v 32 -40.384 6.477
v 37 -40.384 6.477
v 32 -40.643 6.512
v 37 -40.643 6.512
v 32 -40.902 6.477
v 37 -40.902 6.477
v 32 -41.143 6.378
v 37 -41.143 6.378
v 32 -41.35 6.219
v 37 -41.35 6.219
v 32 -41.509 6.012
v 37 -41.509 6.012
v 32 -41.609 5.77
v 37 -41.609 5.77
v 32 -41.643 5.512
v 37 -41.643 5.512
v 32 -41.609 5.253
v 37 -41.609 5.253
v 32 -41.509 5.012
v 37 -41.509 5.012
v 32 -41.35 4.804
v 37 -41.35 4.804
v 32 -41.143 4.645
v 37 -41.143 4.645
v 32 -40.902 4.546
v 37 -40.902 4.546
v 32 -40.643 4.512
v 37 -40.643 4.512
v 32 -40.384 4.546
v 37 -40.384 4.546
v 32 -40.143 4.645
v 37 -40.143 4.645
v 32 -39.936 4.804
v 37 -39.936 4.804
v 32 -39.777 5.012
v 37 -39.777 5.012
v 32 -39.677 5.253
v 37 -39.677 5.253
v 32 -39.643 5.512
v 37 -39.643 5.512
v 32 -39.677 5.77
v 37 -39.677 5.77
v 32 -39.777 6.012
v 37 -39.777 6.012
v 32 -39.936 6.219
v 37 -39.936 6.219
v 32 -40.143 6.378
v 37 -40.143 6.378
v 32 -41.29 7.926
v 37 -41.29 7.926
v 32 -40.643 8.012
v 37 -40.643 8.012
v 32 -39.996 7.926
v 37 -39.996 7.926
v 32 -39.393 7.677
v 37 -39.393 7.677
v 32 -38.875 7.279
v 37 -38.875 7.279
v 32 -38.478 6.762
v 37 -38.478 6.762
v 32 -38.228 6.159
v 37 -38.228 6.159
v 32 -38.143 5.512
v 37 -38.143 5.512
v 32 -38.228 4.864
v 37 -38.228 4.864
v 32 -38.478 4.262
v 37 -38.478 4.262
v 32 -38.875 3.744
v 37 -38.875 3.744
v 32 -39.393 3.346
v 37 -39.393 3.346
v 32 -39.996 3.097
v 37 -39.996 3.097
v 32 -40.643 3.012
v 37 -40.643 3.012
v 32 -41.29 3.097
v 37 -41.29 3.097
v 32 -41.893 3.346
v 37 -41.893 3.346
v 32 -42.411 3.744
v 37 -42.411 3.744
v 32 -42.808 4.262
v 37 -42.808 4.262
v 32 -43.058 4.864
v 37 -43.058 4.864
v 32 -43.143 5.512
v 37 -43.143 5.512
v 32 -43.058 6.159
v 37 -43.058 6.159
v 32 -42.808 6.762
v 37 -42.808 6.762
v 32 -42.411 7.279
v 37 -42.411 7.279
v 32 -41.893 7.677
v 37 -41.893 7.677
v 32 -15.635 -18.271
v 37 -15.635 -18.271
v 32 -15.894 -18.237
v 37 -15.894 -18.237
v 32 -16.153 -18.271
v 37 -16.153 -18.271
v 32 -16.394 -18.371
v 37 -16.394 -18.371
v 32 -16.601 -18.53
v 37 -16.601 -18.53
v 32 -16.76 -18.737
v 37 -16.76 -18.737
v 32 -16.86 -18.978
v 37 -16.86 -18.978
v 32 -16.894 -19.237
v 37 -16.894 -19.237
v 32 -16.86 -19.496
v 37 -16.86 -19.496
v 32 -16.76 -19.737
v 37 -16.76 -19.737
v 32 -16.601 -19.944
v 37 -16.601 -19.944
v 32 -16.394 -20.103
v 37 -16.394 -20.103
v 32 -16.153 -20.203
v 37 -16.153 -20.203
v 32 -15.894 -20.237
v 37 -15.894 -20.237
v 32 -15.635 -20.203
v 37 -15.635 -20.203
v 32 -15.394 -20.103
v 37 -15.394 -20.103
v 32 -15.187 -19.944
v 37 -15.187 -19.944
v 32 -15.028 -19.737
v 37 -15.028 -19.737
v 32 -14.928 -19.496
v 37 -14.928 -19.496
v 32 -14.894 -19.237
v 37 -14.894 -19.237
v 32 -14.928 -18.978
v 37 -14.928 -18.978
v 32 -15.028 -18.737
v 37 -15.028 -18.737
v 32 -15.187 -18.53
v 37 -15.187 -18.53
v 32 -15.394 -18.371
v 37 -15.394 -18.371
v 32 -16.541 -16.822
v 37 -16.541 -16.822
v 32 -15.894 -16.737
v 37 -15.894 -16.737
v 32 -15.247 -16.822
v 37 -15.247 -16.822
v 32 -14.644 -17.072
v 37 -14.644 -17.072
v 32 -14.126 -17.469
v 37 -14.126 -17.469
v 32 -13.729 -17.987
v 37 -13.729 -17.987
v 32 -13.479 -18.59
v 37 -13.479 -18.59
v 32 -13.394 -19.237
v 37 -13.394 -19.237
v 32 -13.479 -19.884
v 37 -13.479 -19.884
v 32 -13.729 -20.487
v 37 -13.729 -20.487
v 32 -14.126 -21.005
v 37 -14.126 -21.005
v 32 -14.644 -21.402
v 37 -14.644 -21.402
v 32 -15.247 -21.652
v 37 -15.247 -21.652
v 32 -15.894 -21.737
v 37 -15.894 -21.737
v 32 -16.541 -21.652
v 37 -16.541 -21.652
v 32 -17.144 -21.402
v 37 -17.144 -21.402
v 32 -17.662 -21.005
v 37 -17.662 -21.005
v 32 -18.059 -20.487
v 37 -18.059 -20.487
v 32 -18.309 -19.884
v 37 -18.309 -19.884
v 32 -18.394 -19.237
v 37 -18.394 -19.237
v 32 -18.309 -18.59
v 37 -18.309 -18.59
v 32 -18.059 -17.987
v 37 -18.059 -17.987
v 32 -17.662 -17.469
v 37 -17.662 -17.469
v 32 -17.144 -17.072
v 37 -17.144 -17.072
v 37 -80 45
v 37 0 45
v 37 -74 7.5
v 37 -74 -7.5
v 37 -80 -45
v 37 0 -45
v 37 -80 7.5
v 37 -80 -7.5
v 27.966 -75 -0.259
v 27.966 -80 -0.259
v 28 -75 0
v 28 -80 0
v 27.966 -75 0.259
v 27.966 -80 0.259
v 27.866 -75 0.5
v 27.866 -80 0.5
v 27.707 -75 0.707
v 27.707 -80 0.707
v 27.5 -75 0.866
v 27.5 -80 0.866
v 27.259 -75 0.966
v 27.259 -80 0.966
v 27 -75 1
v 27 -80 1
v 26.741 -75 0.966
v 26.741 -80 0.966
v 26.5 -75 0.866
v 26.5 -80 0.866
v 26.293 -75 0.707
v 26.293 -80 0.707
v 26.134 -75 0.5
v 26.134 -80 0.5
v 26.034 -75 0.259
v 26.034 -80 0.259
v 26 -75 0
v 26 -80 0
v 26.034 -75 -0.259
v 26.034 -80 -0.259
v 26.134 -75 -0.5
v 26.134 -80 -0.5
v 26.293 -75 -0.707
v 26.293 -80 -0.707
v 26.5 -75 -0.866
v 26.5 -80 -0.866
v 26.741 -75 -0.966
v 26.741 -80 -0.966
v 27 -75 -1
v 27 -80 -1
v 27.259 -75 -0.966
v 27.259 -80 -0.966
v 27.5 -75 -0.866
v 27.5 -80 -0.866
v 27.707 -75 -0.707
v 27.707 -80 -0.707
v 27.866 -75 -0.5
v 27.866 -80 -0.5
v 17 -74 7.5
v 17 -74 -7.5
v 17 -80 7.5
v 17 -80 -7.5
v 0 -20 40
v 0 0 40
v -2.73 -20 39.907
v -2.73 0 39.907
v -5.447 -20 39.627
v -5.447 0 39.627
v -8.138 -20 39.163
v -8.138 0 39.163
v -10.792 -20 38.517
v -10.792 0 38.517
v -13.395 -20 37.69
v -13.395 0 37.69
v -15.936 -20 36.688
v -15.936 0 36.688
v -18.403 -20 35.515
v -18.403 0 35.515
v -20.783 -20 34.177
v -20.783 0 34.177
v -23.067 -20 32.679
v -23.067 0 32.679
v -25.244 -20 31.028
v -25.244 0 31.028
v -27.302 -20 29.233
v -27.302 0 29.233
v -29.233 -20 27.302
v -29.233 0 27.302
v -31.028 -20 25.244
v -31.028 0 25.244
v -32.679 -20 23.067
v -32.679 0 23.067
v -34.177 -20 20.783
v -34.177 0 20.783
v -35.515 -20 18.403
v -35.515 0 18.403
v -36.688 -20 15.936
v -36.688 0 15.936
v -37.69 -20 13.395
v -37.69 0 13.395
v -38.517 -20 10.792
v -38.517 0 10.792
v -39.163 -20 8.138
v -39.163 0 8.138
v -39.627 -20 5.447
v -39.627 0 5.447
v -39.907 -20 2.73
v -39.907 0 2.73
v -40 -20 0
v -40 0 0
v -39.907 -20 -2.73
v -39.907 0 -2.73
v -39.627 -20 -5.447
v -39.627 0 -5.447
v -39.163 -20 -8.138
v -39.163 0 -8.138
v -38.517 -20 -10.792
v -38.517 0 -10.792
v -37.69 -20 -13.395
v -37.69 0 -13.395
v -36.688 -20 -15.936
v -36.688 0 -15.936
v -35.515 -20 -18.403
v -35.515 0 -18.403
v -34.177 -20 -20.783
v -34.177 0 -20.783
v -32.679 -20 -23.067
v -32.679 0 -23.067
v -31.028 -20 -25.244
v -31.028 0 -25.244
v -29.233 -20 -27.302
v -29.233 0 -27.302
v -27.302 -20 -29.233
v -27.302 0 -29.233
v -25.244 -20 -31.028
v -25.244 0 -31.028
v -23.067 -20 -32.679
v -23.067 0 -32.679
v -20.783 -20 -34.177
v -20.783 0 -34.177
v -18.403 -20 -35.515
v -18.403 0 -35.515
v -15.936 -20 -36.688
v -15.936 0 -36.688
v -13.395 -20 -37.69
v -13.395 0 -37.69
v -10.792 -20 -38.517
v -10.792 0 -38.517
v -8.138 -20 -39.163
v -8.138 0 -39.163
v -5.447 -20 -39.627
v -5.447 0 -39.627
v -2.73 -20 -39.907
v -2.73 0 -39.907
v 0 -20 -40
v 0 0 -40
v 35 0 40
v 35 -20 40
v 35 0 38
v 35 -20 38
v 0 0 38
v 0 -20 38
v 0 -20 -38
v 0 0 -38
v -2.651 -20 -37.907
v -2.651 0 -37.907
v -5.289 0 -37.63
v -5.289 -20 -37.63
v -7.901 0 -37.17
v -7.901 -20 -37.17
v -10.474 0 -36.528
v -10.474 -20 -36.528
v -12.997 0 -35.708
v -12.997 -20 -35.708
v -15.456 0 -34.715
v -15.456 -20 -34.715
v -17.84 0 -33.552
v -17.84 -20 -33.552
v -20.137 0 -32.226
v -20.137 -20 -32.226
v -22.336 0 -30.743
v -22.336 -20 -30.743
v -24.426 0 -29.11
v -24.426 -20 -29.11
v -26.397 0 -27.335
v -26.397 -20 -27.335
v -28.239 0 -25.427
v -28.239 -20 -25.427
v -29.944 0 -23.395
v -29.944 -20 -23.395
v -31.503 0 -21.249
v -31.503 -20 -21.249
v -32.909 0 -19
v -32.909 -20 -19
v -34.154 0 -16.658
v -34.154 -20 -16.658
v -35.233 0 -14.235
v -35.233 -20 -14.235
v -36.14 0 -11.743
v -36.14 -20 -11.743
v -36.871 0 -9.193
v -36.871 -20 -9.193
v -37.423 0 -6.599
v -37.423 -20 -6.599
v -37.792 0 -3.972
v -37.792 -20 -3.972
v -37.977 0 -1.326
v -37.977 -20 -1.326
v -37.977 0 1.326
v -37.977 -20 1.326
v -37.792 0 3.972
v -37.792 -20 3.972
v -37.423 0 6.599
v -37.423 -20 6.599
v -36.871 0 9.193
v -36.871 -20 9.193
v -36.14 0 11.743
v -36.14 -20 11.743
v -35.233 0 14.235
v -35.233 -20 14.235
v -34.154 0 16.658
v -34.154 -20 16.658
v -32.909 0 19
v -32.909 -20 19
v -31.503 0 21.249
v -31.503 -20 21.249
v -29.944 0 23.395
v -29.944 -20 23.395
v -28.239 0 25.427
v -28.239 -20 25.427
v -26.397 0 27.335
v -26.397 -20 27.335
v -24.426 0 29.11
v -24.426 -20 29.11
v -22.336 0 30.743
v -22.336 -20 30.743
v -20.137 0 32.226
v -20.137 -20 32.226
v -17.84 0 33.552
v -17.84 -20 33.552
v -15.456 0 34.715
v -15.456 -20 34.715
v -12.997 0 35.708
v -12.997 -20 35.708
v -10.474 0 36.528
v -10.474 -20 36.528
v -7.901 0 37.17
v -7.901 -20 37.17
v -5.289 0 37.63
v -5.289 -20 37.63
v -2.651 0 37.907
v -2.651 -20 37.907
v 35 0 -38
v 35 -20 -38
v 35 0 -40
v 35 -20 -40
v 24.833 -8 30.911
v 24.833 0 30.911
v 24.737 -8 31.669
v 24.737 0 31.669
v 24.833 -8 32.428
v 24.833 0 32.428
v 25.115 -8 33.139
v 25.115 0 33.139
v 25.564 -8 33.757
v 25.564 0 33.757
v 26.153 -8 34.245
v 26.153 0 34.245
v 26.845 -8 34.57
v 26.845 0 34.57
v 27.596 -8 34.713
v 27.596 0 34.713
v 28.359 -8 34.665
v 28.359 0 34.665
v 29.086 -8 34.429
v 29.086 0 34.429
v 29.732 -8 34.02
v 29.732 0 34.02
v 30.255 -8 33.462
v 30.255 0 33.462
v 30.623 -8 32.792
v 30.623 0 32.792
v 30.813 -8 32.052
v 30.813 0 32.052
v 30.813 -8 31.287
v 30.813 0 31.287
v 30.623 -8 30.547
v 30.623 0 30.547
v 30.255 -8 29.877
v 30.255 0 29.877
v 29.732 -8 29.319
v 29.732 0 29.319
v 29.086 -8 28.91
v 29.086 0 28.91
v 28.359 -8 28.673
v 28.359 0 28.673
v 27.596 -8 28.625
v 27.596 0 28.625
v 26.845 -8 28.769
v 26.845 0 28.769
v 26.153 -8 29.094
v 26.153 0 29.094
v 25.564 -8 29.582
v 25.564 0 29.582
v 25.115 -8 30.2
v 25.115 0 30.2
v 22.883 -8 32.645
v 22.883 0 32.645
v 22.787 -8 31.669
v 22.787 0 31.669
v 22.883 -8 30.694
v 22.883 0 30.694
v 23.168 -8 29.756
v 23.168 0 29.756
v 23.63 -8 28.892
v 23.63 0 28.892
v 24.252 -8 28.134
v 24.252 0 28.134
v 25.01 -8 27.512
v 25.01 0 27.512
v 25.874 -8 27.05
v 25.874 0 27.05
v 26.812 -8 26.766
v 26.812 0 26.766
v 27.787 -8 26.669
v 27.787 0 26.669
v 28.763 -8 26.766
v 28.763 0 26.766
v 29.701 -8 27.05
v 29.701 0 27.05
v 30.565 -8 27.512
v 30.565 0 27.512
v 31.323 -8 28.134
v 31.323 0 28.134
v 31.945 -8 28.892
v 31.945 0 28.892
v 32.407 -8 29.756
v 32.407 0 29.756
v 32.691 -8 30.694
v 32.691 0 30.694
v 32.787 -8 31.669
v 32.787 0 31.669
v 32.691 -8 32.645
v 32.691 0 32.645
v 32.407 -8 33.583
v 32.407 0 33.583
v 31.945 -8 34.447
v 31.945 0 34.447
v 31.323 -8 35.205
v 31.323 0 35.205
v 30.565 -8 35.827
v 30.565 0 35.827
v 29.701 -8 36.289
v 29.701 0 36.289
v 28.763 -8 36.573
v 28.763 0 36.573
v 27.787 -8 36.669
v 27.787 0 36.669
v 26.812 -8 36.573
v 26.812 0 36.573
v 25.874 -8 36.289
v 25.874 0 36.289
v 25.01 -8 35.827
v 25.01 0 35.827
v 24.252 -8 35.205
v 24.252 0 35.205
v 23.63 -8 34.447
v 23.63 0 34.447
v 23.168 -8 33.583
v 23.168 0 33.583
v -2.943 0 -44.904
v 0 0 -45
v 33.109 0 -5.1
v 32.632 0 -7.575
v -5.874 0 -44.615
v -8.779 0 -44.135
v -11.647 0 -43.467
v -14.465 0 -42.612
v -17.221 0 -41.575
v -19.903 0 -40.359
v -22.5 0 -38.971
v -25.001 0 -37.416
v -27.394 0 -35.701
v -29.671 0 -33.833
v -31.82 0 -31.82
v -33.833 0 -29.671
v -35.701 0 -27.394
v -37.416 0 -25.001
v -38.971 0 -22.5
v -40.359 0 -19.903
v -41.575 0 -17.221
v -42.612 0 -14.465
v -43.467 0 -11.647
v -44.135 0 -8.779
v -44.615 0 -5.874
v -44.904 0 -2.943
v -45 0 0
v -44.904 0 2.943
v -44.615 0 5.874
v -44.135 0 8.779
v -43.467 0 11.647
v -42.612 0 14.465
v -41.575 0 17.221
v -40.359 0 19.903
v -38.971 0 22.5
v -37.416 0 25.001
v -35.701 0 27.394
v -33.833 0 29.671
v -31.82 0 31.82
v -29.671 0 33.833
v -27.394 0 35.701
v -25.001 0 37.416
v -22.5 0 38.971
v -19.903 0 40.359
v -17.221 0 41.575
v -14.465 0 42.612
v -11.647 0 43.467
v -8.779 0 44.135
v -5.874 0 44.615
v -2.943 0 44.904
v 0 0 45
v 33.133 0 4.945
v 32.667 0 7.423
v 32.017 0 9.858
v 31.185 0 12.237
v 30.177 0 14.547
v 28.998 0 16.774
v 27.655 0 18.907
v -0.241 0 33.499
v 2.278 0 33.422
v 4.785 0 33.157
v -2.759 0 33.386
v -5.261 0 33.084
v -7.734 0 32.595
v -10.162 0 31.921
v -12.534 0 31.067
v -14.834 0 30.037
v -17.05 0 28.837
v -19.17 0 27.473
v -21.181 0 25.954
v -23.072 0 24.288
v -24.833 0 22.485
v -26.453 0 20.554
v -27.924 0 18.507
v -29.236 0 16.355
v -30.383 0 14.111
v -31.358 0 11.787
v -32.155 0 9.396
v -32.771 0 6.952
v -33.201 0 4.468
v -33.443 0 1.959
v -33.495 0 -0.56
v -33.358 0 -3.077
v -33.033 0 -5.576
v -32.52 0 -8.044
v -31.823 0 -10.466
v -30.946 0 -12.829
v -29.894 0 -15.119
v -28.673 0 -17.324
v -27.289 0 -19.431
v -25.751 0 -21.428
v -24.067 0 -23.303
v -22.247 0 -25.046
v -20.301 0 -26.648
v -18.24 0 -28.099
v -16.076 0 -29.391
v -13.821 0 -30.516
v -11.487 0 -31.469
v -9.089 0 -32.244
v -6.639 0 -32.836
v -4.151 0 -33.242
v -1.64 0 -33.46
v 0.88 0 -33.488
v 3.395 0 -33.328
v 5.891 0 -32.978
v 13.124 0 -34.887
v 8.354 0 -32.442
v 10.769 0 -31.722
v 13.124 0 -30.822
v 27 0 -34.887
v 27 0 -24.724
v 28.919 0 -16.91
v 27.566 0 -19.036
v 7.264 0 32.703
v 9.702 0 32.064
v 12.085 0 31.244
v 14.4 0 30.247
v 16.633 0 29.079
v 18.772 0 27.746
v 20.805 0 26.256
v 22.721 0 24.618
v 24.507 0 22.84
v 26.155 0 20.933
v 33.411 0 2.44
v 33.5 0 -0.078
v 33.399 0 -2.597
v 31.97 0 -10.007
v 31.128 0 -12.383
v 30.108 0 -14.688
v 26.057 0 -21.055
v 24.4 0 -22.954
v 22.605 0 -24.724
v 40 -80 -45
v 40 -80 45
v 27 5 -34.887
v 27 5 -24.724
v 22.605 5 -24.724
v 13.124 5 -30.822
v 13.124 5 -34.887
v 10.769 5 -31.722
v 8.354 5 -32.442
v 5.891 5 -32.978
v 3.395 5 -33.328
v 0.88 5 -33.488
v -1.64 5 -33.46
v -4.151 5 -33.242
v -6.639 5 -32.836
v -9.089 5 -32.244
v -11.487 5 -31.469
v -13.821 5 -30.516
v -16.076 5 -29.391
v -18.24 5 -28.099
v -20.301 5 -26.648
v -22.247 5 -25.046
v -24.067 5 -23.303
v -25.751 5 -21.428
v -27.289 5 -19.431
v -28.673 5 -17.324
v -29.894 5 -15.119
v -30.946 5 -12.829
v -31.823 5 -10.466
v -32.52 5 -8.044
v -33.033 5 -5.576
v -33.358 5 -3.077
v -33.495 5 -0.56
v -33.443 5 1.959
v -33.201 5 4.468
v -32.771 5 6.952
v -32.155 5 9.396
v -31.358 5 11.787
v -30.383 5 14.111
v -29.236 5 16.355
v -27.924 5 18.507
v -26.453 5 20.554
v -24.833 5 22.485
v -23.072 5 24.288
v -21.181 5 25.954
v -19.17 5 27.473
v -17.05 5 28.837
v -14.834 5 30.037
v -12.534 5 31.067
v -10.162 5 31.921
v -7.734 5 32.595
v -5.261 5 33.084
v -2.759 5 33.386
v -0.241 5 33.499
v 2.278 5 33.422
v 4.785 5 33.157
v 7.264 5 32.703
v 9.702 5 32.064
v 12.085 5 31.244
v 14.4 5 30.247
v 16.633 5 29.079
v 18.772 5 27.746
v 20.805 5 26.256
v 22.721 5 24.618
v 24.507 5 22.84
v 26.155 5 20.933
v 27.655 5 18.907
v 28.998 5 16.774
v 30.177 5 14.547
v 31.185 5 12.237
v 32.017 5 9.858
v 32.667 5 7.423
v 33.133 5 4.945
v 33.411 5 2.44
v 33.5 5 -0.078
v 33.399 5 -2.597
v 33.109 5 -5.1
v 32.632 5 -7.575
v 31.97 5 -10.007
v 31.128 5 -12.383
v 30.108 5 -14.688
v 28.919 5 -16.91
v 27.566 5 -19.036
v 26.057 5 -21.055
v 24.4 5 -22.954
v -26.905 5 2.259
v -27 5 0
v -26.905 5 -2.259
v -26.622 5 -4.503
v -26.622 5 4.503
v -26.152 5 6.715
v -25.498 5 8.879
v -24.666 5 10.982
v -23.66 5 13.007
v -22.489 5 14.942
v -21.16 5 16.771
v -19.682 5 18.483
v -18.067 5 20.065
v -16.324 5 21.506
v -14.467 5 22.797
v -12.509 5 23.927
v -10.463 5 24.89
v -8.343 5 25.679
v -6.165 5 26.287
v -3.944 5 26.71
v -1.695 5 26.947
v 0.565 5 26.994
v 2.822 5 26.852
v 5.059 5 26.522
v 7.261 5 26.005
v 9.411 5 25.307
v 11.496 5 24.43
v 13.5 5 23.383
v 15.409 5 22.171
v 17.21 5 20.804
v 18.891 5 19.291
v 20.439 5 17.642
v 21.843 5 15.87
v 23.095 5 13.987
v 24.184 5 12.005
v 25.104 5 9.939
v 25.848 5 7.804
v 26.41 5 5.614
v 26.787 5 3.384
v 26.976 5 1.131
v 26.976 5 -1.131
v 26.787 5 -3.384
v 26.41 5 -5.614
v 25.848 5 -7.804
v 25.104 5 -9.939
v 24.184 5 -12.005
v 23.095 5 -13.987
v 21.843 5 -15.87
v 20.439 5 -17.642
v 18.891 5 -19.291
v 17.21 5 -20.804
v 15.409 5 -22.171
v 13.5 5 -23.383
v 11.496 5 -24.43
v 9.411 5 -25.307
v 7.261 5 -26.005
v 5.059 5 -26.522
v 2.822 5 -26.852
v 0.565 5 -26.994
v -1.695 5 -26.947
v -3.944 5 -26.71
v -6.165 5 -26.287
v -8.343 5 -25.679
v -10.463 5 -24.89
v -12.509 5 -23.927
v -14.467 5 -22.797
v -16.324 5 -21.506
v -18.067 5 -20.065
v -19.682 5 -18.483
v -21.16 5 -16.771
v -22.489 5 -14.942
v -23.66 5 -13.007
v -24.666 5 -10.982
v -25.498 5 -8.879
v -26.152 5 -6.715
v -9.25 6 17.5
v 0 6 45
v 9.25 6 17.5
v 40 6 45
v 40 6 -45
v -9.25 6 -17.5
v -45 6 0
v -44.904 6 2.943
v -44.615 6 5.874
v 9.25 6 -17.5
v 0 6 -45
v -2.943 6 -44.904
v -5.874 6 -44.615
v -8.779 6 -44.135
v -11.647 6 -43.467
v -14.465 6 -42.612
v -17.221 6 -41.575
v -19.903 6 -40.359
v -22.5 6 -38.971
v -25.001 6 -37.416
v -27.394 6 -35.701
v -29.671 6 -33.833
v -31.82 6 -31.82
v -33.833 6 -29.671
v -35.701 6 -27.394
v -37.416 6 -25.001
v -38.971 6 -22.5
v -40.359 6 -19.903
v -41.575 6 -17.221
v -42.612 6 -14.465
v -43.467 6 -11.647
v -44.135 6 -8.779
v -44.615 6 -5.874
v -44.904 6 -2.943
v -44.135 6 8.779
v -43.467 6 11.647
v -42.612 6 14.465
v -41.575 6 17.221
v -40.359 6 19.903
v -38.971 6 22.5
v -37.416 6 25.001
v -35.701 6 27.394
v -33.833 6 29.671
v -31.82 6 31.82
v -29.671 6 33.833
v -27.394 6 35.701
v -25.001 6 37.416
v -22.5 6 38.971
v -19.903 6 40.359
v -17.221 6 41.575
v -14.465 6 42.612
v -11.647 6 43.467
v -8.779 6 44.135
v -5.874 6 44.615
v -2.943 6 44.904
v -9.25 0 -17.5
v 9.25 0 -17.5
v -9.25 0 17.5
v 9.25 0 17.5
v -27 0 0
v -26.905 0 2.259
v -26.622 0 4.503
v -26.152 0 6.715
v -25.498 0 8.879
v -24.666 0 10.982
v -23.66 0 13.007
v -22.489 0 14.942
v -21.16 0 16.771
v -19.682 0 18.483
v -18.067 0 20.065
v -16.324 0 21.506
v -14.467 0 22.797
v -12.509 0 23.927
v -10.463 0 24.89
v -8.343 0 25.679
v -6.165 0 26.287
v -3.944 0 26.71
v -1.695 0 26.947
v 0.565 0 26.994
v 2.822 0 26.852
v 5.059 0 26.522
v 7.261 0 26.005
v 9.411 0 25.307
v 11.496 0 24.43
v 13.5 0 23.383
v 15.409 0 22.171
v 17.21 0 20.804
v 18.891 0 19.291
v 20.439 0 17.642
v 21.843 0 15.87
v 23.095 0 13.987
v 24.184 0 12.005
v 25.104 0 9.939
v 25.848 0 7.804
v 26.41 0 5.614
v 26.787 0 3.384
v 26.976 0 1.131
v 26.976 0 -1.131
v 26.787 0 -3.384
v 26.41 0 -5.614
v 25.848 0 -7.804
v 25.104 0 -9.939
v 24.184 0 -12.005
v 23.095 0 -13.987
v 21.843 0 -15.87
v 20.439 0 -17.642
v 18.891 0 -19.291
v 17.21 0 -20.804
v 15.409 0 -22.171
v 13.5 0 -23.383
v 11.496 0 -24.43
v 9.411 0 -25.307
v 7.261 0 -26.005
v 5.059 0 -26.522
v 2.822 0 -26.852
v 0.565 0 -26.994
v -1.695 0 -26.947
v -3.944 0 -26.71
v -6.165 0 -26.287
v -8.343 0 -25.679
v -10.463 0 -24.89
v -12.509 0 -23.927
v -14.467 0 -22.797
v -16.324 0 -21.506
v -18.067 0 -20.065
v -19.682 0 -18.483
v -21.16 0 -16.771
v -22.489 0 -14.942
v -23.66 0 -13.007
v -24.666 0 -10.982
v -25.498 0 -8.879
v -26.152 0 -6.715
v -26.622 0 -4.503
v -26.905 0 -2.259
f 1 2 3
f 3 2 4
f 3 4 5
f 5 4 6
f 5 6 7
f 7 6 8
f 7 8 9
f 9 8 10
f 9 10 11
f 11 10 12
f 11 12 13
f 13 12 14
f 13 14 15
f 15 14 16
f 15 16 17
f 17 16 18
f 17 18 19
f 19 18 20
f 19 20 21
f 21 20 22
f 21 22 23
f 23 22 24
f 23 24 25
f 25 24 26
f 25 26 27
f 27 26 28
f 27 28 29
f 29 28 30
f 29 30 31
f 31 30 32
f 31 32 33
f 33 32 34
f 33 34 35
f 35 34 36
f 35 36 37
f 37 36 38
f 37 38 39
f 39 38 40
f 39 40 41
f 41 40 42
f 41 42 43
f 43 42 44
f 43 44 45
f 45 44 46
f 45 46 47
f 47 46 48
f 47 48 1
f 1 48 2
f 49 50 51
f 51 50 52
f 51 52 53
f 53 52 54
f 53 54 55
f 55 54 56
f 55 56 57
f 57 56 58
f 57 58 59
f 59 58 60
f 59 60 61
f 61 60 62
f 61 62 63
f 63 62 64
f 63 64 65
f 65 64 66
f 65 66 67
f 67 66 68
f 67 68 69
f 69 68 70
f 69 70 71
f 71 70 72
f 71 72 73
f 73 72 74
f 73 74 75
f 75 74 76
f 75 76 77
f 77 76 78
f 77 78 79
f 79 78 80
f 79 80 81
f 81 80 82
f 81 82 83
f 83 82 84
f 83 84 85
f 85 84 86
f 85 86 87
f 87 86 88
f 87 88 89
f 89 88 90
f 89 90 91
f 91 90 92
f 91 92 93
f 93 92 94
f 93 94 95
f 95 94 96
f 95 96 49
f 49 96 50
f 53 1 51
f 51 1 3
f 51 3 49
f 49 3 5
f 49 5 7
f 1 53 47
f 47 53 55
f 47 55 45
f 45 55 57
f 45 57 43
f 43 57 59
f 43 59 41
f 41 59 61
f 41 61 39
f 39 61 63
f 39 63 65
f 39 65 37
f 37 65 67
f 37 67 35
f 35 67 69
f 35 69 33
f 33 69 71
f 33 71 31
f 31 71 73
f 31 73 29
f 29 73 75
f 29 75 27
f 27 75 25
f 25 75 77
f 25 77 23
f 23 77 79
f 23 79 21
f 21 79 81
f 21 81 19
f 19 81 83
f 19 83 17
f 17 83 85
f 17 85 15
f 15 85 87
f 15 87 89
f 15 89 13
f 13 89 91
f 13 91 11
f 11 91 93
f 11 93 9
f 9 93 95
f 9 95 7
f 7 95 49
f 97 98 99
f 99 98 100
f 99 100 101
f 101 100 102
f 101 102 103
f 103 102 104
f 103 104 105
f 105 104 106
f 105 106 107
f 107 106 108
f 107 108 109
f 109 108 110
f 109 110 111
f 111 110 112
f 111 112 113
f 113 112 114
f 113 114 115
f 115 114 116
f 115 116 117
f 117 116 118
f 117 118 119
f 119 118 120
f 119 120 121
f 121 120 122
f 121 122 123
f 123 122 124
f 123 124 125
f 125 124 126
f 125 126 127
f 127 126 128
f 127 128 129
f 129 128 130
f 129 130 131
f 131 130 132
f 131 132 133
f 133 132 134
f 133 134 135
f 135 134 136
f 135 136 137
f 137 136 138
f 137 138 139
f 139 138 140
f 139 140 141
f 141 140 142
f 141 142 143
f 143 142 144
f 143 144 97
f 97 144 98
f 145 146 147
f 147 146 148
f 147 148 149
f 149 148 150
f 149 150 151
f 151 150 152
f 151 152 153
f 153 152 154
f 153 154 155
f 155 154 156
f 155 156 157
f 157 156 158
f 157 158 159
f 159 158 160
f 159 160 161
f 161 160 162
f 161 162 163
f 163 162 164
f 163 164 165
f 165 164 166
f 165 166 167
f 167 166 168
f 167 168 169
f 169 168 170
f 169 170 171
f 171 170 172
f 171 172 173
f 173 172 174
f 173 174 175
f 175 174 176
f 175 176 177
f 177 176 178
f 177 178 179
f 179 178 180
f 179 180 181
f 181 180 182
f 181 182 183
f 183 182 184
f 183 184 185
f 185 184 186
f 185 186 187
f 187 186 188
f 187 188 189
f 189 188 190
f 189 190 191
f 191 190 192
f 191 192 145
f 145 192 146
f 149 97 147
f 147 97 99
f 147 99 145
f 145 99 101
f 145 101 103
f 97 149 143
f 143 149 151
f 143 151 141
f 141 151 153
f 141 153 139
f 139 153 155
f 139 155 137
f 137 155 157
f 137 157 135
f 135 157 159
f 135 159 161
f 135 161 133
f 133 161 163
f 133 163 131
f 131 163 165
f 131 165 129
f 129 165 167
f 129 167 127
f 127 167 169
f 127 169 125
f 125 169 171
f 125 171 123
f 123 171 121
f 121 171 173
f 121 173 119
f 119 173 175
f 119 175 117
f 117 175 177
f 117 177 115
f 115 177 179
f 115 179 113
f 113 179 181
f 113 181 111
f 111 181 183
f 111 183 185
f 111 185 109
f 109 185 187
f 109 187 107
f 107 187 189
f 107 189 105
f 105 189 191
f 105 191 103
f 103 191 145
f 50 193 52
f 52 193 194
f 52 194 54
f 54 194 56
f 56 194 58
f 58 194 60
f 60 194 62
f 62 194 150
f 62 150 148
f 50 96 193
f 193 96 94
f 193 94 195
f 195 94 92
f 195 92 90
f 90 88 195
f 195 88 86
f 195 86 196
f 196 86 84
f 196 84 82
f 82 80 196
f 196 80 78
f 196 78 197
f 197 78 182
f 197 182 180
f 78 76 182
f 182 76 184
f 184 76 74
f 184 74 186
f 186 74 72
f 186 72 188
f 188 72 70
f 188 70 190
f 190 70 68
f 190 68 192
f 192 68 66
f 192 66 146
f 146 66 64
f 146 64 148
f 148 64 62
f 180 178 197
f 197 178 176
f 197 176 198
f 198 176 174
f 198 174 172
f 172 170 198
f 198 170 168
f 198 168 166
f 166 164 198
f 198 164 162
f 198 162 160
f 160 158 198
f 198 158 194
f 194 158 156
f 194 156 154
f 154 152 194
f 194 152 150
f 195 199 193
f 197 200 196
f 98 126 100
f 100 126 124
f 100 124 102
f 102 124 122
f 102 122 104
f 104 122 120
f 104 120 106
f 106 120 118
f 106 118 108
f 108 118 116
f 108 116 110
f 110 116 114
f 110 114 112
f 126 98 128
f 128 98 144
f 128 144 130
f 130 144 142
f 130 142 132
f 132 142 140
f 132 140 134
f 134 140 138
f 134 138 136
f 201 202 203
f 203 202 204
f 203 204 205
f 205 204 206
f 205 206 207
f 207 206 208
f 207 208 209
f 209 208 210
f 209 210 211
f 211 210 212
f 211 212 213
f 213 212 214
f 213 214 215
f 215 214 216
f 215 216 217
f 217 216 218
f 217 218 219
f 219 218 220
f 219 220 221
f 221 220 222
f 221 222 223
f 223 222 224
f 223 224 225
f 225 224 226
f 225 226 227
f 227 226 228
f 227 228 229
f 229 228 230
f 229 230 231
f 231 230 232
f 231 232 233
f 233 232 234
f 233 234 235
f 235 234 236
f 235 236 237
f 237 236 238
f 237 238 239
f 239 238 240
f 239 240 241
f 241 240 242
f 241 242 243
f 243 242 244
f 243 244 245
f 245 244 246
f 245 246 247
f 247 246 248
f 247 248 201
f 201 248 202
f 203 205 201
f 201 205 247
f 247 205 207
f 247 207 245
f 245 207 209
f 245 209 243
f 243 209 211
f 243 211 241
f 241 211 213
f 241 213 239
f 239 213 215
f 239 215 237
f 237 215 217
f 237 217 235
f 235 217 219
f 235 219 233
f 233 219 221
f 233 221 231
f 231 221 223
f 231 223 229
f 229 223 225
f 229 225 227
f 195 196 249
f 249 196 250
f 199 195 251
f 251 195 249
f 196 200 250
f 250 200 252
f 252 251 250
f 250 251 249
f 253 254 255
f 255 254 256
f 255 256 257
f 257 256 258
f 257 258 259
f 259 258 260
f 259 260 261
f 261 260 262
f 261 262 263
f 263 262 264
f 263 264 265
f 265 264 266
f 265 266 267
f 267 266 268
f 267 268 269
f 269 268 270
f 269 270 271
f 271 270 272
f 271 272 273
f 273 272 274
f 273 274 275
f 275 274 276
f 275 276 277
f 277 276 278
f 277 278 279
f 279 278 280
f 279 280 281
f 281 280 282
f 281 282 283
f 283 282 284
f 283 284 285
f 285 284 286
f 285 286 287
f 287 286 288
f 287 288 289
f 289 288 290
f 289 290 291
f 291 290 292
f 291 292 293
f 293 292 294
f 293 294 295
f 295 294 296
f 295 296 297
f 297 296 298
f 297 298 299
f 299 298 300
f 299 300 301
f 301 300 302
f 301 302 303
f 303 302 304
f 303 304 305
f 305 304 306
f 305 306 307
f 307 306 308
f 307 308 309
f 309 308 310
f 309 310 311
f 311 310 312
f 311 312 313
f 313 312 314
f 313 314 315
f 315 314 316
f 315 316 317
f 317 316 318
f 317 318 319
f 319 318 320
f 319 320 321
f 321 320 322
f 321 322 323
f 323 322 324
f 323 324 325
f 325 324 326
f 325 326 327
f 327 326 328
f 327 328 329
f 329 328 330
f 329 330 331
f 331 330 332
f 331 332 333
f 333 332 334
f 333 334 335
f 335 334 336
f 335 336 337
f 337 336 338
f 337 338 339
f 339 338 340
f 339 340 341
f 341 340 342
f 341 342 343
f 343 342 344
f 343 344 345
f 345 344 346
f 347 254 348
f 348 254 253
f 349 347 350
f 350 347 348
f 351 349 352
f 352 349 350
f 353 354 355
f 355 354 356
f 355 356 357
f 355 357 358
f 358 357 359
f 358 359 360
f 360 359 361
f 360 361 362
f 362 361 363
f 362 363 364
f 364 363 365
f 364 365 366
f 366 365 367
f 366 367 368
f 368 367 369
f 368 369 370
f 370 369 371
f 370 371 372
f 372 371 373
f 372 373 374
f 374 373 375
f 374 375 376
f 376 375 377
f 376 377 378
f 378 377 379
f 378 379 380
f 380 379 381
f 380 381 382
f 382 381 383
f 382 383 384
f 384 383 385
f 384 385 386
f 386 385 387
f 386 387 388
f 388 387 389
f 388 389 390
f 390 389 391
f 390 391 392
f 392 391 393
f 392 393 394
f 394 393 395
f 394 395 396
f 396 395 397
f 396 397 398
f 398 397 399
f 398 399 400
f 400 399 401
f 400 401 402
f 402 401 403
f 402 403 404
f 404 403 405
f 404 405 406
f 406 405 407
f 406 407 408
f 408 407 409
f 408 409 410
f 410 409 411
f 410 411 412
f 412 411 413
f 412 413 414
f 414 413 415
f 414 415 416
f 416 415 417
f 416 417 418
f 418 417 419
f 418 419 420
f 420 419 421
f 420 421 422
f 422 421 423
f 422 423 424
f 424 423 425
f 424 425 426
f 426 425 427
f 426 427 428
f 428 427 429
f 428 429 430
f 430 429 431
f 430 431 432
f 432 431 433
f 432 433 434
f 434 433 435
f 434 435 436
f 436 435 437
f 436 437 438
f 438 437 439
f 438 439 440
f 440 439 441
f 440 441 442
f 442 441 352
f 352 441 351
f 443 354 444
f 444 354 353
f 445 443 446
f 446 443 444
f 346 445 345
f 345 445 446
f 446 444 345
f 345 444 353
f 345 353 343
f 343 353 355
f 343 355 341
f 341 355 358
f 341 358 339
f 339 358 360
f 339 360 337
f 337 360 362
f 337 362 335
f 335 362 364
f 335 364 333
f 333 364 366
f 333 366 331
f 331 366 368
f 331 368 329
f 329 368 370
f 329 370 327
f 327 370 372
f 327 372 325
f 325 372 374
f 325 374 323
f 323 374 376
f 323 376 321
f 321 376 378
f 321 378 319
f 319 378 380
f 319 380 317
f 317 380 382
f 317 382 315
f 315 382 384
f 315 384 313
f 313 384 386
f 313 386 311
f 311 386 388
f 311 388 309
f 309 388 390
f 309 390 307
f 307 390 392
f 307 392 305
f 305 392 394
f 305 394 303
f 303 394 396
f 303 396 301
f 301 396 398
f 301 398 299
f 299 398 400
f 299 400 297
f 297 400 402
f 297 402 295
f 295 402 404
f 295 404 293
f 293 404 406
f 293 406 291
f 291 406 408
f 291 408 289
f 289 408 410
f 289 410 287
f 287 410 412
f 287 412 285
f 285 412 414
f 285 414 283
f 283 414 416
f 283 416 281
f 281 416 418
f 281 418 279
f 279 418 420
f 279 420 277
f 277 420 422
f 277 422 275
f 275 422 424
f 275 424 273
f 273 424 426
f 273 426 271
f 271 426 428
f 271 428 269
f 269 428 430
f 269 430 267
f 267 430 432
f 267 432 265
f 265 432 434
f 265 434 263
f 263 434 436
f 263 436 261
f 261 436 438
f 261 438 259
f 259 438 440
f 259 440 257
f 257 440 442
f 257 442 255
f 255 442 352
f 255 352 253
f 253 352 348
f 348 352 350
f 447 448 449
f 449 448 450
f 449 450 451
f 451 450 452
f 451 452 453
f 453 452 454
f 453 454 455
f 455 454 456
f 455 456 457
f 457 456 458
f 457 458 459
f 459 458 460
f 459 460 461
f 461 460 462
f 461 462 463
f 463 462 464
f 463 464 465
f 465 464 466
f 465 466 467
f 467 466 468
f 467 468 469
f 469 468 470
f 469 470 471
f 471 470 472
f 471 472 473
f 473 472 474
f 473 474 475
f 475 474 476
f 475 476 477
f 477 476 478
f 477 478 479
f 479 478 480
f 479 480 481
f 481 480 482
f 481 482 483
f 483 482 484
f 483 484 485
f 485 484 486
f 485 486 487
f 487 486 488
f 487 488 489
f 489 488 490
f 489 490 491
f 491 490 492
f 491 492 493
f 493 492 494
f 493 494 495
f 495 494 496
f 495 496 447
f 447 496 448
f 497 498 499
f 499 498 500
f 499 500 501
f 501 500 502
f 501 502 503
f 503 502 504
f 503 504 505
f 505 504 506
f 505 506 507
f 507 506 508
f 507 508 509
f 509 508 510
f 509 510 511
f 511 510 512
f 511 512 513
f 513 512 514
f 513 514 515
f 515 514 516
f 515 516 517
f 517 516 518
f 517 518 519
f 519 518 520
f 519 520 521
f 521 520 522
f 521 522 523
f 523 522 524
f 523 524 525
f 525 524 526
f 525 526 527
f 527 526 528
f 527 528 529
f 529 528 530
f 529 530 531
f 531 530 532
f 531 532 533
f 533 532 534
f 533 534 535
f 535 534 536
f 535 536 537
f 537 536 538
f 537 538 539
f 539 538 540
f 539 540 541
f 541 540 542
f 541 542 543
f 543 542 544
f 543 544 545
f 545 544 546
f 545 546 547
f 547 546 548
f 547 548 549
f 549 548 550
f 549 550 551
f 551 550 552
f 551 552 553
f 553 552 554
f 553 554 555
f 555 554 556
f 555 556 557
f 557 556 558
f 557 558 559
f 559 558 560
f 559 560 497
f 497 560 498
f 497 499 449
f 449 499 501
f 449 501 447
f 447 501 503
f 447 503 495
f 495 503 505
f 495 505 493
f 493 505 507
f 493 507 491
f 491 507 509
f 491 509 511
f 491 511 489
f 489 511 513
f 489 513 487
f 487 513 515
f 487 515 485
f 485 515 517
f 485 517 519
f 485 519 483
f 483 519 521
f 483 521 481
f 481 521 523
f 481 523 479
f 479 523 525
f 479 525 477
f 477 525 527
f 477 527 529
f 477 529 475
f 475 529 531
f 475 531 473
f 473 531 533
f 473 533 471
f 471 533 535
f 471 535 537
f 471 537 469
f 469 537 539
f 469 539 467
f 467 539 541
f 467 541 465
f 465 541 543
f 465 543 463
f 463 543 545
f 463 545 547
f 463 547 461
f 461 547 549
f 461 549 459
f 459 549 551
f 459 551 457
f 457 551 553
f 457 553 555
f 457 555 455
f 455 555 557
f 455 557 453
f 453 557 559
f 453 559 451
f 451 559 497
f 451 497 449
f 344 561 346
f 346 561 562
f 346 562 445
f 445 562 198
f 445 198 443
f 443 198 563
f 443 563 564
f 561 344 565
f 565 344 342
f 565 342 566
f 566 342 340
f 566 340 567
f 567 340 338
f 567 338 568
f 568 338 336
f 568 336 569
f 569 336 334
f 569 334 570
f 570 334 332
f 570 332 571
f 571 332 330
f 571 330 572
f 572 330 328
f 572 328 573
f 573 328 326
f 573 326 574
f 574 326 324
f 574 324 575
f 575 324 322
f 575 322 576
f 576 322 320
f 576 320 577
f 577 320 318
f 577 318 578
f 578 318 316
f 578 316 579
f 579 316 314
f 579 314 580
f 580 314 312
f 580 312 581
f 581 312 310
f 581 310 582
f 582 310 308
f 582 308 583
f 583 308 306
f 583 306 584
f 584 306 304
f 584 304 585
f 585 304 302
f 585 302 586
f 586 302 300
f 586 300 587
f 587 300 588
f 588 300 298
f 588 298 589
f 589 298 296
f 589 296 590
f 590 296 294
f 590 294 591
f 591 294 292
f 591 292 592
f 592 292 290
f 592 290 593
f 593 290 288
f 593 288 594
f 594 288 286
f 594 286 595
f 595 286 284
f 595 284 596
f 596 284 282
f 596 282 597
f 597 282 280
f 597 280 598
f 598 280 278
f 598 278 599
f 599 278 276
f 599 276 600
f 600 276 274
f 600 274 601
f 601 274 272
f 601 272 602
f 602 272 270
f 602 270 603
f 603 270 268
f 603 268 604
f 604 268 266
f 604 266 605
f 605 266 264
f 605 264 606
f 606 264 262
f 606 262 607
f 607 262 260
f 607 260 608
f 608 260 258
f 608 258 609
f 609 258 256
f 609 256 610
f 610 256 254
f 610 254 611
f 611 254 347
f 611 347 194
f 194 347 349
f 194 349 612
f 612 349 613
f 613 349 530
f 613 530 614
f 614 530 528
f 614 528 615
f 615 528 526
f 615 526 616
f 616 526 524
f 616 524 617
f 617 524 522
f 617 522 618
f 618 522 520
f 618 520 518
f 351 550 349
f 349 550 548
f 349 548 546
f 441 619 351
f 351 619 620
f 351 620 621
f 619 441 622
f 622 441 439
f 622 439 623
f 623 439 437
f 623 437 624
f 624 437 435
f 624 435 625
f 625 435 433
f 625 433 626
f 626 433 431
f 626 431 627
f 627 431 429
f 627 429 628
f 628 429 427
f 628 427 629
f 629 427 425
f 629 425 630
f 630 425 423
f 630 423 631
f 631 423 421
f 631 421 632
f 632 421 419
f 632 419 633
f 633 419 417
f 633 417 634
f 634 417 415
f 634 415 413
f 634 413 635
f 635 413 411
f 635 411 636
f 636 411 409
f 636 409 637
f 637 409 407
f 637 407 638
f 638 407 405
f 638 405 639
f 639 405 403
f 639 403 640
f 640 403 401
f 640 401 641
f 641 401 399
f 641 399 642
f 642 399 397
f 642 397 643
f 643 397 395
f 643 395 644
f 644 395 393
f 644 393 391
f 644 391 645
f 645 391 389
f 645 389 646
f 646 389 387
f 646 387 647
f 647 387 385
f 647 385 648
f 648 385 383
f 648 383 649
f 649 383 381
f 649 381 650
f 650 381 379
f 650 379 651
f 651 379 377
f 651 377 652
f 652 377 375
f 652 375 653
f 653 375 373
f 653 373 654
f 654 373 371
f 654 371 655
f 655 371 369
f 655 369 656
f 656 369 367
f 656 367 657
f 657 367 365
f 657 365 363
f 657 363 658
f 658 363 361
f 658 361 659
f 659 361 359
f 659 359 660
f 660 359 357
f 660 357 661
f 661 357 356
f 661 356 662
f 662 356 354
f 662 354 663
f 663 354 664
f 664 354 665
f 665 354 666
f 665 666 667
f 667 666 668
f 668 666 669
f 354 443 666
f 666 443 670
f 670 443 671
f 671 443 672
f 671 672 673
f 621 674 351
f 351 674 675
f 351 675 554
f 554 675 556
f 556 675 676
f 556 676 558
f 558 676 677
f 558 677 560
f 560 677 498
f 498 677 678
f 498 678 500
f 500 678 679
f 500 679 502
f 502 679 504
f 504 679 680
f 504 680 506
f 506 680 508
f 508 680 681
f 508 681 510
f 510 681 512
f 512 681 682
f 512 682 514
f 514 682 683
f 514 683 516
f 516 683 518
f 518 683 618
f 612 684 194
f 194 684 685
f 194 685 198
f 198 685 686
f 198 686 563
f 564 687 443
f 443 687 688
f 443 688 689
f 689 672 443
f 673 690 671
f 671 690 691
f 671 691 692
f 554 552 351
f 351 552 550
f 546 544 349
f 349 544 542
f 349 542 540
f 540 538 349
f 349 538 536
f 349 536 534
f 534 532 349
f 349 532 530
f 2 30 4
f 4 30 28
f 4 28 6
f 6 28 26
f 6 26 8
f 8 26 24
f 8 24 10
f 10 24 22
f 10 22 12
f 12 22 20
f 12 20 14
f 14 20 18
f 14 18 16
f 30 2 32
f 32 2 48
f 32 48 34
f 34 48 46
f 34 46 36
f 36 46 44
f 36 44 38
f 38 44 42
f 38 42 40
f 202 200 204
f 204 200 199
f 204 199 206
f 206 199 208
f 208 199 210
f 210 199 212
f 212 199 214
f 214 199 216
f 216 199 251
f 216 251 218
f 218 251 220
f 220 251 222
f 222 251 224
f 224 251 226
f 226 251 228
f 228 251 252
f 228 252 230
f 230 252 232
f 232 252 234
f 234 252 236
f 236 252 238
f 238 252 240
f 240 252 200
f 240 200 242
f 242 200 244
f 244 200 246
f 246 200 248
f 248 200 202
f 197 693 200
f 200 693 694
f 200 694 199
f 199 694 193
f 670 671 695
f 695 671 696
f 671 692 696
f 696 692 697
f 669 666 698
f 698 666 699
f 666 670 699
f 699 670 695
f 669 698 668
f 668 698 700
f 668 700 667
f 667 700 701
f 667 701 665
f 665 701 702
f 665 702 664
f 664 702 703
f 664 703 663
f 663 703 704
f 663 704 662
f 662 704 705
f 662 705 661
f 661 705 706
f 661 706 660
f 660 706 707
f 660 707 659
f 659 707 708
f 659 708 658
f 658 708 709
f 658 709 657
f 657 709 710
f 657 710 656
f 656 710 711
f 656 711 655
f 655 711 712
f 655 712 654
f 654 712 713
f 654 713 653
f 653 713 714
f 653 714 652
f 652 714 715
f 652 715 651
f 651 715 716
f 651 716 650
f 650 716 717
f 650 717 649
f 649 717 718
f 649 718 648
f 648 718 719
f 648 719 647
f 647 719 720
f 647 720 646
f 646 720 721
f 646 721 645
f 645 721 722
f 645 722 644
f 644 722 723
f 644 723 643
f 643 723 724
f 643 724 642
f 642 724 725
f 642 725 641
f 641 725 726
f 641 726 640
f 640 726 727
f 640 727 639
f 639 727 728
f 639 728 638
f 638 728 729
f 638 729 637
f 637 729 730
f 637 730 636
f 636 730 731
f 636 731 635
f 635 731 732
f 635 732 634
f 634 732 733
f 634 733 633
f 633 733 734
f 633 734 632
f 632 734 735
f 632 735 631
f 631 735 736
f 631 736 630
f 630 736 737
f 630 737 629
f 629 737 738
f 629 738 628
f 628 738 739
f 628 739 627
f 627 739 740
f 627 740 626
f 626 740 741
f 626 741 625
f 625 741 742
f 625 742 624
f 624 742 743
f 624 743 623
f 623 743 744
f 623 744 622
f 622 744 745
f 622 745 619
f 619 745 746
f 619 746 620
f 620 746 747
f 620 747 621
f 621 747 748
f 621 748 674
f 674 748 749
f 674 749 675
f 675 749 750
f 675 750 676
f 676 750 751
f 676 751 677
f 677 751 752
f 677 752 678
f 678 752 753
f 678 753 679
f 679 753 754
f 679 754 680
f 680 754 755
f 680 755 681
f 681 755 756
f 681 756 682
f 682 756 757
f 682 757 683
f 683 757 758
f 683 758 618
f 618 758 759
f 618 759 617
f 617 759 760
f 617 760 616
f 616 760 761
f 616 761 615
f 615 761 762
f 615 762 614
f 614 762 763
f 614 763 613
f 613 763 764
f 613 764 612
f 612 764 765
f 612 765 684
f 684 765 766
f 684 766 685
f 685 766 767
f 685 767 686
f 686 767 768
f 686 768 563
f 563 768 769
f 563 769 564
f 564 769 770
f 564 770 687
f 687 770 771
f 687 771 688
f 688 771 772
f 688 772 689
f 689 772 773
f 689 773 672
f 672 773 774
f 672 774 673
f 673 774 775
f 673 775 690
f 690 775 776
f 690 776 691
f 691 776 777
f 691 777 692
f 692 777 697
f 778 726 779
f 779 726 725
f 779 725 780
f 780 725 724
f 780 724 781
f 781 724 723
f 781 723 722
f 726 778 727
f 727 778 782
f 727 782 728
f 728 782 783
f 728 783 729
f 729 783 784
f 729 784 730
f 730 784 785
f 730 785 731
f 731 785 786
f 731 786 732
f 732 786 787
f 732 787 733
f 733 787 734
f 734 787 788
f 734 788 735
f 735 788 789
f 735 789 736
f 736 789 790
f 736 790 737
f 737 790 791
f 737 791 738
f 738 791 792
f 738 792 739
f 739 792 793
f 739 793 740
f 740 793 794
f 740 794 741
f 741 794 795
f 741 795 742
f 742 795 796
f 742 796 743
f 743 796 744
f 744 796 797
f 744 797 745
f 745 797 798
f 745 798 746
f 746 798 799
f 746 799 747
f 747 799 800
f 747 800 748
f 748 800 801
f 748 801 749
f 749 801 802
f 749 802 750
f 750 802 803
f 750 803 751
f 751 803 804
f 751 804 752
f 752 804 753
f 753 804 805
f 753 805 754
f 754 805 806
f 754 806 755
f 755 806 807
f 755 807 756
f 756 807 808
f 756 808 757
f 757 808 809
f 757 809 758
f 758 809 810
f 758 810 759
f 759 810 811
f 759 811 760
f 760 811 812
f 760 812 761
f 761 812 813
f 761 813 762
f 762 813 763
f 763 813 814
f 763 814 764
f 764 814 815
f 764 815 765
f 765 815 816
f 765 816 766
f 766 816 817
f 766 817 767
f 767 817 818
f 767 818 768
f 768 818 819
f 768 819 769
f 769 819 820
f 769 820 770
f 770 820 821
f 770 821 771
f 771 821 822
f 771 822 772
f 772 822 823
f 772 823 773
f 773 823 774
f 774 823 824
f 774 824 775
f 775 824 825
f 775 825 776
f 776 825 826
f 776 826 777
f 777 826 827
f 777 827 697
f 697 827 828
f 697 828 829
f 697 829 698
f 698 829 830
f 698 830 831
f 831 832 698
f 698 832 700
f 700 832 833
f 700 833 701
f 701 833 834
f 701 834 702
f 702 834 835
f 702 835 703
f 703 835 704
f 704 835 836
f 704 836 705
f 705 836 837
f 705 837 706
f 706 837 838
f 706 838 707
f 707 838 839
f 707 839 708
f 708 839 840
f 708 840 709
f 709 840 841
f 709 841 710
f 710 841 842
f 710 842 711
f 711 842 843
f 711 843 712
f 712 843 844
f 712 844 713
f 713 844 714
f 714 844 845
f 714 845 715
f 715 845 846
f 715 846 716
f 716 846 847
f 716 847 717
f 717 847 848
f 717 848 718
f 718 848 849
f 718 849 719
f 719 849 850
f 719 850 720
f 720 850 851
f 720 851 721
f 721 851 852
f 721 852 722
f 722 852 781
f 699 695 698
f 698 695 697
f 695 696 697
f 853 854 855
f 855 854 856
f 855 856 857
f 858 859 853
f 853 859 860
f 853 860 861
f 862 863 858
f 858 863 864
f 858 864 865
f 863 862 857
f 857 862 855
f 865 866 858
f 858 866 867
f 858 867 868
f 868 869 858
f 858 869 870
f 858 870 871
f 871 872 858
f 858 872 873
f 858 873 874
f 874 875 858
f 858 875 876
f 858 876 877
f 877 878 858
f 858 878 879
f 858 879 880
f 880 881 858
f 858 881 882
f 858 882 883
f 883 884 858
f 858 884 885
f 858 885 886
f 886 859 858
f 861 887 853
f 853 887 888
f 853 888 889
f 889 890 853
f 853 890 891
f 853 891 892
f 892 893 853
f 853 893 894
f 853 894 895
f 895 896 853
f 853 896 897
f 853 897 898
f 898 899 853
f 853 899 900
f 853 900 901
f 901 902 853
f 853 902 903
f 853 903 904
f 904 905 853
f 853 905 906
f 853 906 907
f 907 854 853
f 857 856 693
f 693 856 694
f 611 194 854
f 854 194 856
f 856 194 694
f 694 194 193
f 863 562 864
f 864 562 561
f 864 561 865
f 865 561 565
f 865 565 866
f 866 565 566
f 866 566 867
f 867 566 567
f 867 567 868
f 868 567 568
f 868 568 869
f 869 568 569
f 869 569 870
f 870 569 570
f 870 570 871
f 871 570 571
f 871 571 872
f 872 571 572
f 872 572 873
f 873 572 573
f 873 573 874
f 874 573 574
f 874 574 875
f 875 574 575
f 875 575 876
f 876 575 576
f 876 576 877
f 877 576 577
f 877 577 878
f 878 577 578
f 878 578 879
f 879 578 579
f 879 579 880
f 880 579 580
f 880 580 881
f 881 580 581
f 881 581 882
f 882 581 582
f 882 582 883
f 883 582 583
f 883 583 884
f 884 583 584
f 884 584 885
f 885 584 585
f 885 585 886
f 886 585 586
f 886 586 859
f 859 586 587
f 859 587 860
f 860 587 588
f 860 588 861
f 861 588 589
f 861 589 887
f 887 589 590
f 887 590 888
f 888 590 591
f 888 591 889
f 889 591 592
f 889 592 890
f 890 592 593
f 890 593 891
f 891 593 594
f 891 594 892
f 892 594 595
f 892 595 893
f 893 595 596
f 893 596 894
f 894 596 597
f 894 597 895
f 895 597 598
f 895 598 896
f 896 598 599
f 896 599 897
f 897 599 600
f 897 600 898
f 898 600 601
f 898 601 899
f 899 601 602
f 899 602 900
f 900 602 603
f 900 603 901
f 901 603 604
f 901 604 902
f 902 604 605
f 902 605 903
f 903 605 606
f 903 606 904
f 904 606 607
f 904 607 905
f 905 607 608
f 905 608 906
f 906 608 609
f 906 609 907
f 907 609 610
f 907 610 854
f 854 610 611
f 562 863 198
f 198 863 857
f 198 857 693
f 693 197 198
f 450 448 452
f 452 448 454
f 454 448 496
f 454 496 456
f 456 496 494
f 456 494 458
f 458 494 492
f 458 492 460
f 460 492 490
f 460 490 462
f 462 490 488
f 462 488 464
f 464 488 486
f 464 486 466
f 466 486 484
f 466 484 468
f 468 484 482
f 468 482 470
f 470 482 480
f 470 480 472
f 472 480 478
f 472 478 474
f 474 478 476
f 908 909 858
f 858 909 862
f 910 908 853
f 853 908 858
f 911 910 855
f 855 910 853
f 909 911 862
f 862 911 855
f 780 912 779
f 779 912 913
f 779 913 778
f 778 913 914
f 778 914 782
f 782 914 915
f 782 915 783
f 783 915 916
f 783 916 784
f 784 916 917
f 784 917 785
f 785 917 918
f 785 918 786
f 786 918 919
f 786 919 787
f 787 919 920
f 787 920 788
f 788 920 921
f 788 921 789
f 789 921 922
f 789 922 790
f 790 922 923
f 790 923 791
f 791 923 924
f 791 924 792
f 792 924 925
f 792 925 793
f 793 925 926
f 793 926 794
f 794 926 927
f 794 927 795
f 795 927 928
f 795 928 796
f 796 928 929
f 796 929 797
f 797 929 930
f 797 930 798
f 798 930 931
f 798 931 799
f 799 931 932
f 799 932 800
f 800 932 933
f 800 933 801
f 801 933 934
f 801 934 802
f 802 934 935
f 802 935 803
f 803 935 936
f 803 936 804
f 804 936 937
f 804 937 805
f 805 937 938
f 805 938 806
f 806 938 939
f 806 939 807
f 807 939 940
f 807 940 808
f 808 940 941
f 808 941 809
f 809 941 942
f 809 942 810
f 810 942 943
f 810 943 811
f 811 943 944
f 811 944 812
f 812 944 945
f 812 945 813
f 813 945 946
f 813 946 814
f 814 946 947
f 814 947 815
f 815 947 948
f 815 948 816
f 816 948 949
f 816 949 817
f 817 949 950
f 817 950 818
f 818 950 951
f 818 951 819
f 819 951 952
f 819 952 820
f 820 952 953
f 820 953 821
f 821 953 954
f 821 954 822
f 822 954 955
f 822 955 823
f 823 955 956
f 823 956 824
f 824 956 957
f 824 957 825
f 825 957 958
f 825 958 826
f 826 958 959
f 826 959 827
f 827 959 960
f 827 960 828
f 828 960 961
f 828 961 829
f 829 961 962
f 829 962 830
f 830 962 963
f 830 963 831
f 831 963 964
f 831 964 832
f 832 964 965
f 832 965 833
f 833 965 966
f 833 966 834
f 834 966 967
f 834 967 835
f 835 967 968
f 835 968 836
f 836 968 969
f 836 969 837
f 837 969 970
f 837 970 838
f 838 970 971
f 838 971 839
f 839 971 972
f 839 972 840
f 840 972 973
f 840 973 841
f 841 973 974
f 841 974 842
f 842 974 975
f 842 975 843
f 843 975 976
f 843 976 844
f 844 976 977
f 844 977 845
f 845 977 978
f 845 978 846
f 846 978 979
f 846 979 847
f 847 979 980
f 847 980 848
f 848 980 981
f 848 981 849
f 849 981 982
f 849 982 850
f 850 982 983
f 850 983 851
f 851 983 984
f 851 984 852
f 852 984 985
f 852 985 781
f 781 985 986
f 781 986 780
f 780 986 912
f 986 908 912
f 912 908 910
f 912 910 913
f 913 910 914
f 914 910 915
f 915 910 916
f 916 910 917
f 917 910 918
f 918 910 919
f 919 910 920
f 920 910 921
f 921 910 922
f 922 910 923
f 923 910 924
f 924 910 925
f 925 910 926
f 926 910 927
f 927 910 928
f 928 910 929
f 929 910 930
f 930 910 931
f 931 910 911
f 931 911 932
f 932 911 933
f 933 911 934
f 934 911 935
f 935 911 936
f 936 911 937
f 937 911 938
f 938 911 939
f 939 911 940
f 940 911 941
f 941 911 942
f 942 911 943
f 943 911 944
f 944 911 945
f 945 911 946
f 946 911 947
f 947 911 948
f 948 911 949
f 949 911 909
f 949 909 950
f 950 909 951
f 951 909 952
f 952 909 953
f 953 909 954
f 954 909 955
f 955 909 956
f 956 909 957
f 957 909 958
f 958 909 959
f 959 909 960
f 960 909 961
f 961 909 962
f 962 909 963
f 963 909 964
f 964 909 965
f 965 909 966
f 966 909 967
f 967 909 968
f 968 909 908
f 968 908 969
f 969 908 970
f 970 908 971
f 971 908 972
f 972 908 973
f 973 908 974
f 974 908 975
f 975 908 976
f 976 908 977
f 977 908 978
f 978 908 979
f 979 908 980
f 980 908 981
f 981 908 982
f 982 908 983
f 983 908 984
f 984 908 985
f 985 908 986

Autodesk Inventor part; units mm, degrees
ref_plane "YZ Plane" through (0, 0, 0) normal (1, 0, 0) x (0, 1, 0)
ref_plane "XZ Plane" through (0, 0, 0) normal (0, 1, 0) x (-1, 0, 0)
ref_plane "XY Plane" through (0, 0, 0) normal (0, 0, 1) x (1, 0, 0)
sketch "Sketch1" plane through (0, 0, 0) normal (0, 1, 0) x (-1, 0, 0)
  line L0 (62, 0) -> (-57, 0) projected
  line L1 (0, -63) -> (0, 63) projected
  line L2 (9.25, 17.5) -> (-9.25, 17.5)
  line L3 (-9.25, 17.5) -> (-9.25, -17.5)
  line L4 (-9.25, -17.5) -> (9.25, -17.5)
  line L5 (9.25, -17.5) -> (9.25, 17.5)
  circle A0 centre (0, 0) radius 33.5
  circle A1 centre (0, 0) radius 27
  line L6 (0, 45) -> (-40, 45)
  line L7 (-40, 45) -> (-40, -45)
  line L8 (-40, -45) -> (0, -45)
  arc A2 (0, -45) -> (0, 45) centre (0, 0) ccw
  line L9 (-13.1237, -34.8874) -> (-27, -34.8874)
  line L10 (-27, -34.8874) -> (-27, -24.7237)
  line L11 (-27, -24.7237) -> (-22.6051, -24.7237)
  line L12 (-13.1237, -30.8224) -> (-13.1237, -34.8874)
  circle A3 centre (-27.7874, 31.6695) radius 3.05
  circle A4 centre (-27.7874, 31.6695) radius 5
  line L13 (0, 40) -> (-35, 40)
  line L14 (-35, -40) -> (0, -40)
  arc A5 (0, -40) -> (0, 40) centre (0, 0) ccw
  line L15 (-35, -38) -> (0, -38)
  arc A6 (0, -38) -> (0, 38) centre (0, 0) ccw
  line L16 (0, 38) -> (-35, 38)
  line L17 (-35, -40) -> (-35, -38)
  line L18 (-35, 38) -> (-35, 40)
  dimension "d0" = 18.5
  dimension "d1" = 35
  dimension "d2" = 67
  dimension "d3" = 54
  dimension "d18" = 6.1
  dimension "d19" = 10
  dimension "d26" = 2
extrude "Extrusion1" add sketch "Sketch1" along normal blind 5 contours A0 L1 A6 L0 | L0 A6 L1 A0 | A1 L1 L4 L5 L0 | L0 L5 L2 L1 A1 | A6 L1 A5 L0 | L0 A5 L1 A6 | A0 L0 L7 L6 L1 L13 L18 L16 | L1 L15 L17 L14 L8 L7 L0 A0 L11 L10 L9 L12 | L1 L2 L3 L0 A1 | A1 L0 L3 L4 L1 | A5 L1 A2 L0 | L0 A2 L1 A5 | L1 L14 L17 L15 | L16 L18 L13 L1 | L12 L9 L10 L11 A0 | A3 | A4
sketch "Sketch2" plane through (0, 5, 0) normal (0, 1, 0) x (1, 0, 0)
  line L0 (40, 45) -> (0, 45) projected
  arc A0 (0, 45) -> (0, -45) centre (0, 0) ccw projected
  line L1 (0, -45) -> (40, -45) projected
  line L2 (40, -45) -> (40, 45) projected
extrude "Extrusion2" add sketch "Sketch2" along normal blind 1
sketch "Sketch3" plane through (0, 5, 0) normal (0, -1, 0) x (1, 0, 0)
  line L0 (-9.25, -17.5) -> (9.25, -17.5) projected
  line L1 (9.25, -17.5) -> (9.25, 17.5) projected
  line L2 (9.25, 17.5) -> (-9.25, 17.5) projected
  line L3 (-9.25, 17.5) -> (-9.25, -17.5) projected
  point P0 (0, 0)
extrude "Extrusion3" cut sketch "Sketch3" against normal through all
extrude "Extrusion4" cut sketch "Sketch1" along normal blind 5 contours L12 L9 L10 L11 A0
sketch "Sketch4" plane through (0, 0, 0) normal (0, -1, 0) x (1, 0, 0)
  line L0 (40, -45) -> (0, -45) projected
  line L1 (40, 45) -> (40, -45) projected
  line L2 (0, 45) -> (40, 45) projected
  line L3 (40, -45) -> (37, -45)
  line L4 (37, -45) -> (37, 45)
  line L5 (37, 45) -> (40, 45)
  line L6 (40, 45) -> (40, -45)
  dimension "d14" = 3
extrude "Extrusion5" add sketch "Sketch4" along normal blind 80
extrude "Extrusion6" add sketch "Sketch1" against normal blind 8 contours A4
extrude "Extrusion8" add sketch "Sketch1" against normal blind 20 contours A6 L1 A5 L0 | L0 A5 L1 A6 | L1 L14 L17 L15 | L16 L18 L13 L1
sketch "Sketch5" plane through (37, 0, -45) normal (-1, 0, 0) x (0, 0, 1)
  line L0 (0, -80) -> (90, -80) projected
  line L1 (37.5, -80) -> (52.5, -80)
  line L2 (52.5, -80) -> (52.5, -74)
  line L3 (52.5, -74) -> (37.5, -74)
  line L4 (37.5, -74) -> (37.5, -80)
  line L5 (0, 0) -> (0, -80) projected
  circle A0 centre (25.7628, -15.894) radius 1
  circle A1 centre (25.7628, -15.894) radius 2.5
  line L6 (25.7628, -7.1865) -> (25.7628, -27.0145) construction
  line L7 (25.7628, -15.894) -> (50.5115, -40.6428) construction
  line L8 (25.7628, -15.894) -> (60.7628, -15.894) construction
  circle A2 centre (50.5115, -40.6428) radius 1 construction
  circle A3 centre (50.5115, -40.6428) radius 2.5 construction
  circle A4 centre (50.5115, -40.6428) radius 1
  circle A5 centre (50.5115, -40.6428) radius 2.5
  dimension "d29" = 15
  dimension "d30" = 6
  dimension "d31" = 37.5
  dimension "d37" = 2
  dimension "d38" = 5
  dimension "d39" = 35
  dimension "d40" = 45
  dimension "d41" = 2
  dimension "d42" = 5
extrude "Extrusion9" add sketch "Sketch5" along normal blind 20 contours L4 L3 L2 L0
sketch "Sketch6" plane through (0, -80, 0) normal (0, -1, 0) x (1, 0, 0)
  circle A0 centre (27, 0) radius 1
  point P0 (0, 0)
  dimension "d34" = 2
extrude "Extrusion10" cut sketch "Sketch6" against normal blind 5
extrude "Extrusion11" add sketch "Sketch5" along normal blind 5 contours A1 | A5
properties part number "Celo_3DPrint"
